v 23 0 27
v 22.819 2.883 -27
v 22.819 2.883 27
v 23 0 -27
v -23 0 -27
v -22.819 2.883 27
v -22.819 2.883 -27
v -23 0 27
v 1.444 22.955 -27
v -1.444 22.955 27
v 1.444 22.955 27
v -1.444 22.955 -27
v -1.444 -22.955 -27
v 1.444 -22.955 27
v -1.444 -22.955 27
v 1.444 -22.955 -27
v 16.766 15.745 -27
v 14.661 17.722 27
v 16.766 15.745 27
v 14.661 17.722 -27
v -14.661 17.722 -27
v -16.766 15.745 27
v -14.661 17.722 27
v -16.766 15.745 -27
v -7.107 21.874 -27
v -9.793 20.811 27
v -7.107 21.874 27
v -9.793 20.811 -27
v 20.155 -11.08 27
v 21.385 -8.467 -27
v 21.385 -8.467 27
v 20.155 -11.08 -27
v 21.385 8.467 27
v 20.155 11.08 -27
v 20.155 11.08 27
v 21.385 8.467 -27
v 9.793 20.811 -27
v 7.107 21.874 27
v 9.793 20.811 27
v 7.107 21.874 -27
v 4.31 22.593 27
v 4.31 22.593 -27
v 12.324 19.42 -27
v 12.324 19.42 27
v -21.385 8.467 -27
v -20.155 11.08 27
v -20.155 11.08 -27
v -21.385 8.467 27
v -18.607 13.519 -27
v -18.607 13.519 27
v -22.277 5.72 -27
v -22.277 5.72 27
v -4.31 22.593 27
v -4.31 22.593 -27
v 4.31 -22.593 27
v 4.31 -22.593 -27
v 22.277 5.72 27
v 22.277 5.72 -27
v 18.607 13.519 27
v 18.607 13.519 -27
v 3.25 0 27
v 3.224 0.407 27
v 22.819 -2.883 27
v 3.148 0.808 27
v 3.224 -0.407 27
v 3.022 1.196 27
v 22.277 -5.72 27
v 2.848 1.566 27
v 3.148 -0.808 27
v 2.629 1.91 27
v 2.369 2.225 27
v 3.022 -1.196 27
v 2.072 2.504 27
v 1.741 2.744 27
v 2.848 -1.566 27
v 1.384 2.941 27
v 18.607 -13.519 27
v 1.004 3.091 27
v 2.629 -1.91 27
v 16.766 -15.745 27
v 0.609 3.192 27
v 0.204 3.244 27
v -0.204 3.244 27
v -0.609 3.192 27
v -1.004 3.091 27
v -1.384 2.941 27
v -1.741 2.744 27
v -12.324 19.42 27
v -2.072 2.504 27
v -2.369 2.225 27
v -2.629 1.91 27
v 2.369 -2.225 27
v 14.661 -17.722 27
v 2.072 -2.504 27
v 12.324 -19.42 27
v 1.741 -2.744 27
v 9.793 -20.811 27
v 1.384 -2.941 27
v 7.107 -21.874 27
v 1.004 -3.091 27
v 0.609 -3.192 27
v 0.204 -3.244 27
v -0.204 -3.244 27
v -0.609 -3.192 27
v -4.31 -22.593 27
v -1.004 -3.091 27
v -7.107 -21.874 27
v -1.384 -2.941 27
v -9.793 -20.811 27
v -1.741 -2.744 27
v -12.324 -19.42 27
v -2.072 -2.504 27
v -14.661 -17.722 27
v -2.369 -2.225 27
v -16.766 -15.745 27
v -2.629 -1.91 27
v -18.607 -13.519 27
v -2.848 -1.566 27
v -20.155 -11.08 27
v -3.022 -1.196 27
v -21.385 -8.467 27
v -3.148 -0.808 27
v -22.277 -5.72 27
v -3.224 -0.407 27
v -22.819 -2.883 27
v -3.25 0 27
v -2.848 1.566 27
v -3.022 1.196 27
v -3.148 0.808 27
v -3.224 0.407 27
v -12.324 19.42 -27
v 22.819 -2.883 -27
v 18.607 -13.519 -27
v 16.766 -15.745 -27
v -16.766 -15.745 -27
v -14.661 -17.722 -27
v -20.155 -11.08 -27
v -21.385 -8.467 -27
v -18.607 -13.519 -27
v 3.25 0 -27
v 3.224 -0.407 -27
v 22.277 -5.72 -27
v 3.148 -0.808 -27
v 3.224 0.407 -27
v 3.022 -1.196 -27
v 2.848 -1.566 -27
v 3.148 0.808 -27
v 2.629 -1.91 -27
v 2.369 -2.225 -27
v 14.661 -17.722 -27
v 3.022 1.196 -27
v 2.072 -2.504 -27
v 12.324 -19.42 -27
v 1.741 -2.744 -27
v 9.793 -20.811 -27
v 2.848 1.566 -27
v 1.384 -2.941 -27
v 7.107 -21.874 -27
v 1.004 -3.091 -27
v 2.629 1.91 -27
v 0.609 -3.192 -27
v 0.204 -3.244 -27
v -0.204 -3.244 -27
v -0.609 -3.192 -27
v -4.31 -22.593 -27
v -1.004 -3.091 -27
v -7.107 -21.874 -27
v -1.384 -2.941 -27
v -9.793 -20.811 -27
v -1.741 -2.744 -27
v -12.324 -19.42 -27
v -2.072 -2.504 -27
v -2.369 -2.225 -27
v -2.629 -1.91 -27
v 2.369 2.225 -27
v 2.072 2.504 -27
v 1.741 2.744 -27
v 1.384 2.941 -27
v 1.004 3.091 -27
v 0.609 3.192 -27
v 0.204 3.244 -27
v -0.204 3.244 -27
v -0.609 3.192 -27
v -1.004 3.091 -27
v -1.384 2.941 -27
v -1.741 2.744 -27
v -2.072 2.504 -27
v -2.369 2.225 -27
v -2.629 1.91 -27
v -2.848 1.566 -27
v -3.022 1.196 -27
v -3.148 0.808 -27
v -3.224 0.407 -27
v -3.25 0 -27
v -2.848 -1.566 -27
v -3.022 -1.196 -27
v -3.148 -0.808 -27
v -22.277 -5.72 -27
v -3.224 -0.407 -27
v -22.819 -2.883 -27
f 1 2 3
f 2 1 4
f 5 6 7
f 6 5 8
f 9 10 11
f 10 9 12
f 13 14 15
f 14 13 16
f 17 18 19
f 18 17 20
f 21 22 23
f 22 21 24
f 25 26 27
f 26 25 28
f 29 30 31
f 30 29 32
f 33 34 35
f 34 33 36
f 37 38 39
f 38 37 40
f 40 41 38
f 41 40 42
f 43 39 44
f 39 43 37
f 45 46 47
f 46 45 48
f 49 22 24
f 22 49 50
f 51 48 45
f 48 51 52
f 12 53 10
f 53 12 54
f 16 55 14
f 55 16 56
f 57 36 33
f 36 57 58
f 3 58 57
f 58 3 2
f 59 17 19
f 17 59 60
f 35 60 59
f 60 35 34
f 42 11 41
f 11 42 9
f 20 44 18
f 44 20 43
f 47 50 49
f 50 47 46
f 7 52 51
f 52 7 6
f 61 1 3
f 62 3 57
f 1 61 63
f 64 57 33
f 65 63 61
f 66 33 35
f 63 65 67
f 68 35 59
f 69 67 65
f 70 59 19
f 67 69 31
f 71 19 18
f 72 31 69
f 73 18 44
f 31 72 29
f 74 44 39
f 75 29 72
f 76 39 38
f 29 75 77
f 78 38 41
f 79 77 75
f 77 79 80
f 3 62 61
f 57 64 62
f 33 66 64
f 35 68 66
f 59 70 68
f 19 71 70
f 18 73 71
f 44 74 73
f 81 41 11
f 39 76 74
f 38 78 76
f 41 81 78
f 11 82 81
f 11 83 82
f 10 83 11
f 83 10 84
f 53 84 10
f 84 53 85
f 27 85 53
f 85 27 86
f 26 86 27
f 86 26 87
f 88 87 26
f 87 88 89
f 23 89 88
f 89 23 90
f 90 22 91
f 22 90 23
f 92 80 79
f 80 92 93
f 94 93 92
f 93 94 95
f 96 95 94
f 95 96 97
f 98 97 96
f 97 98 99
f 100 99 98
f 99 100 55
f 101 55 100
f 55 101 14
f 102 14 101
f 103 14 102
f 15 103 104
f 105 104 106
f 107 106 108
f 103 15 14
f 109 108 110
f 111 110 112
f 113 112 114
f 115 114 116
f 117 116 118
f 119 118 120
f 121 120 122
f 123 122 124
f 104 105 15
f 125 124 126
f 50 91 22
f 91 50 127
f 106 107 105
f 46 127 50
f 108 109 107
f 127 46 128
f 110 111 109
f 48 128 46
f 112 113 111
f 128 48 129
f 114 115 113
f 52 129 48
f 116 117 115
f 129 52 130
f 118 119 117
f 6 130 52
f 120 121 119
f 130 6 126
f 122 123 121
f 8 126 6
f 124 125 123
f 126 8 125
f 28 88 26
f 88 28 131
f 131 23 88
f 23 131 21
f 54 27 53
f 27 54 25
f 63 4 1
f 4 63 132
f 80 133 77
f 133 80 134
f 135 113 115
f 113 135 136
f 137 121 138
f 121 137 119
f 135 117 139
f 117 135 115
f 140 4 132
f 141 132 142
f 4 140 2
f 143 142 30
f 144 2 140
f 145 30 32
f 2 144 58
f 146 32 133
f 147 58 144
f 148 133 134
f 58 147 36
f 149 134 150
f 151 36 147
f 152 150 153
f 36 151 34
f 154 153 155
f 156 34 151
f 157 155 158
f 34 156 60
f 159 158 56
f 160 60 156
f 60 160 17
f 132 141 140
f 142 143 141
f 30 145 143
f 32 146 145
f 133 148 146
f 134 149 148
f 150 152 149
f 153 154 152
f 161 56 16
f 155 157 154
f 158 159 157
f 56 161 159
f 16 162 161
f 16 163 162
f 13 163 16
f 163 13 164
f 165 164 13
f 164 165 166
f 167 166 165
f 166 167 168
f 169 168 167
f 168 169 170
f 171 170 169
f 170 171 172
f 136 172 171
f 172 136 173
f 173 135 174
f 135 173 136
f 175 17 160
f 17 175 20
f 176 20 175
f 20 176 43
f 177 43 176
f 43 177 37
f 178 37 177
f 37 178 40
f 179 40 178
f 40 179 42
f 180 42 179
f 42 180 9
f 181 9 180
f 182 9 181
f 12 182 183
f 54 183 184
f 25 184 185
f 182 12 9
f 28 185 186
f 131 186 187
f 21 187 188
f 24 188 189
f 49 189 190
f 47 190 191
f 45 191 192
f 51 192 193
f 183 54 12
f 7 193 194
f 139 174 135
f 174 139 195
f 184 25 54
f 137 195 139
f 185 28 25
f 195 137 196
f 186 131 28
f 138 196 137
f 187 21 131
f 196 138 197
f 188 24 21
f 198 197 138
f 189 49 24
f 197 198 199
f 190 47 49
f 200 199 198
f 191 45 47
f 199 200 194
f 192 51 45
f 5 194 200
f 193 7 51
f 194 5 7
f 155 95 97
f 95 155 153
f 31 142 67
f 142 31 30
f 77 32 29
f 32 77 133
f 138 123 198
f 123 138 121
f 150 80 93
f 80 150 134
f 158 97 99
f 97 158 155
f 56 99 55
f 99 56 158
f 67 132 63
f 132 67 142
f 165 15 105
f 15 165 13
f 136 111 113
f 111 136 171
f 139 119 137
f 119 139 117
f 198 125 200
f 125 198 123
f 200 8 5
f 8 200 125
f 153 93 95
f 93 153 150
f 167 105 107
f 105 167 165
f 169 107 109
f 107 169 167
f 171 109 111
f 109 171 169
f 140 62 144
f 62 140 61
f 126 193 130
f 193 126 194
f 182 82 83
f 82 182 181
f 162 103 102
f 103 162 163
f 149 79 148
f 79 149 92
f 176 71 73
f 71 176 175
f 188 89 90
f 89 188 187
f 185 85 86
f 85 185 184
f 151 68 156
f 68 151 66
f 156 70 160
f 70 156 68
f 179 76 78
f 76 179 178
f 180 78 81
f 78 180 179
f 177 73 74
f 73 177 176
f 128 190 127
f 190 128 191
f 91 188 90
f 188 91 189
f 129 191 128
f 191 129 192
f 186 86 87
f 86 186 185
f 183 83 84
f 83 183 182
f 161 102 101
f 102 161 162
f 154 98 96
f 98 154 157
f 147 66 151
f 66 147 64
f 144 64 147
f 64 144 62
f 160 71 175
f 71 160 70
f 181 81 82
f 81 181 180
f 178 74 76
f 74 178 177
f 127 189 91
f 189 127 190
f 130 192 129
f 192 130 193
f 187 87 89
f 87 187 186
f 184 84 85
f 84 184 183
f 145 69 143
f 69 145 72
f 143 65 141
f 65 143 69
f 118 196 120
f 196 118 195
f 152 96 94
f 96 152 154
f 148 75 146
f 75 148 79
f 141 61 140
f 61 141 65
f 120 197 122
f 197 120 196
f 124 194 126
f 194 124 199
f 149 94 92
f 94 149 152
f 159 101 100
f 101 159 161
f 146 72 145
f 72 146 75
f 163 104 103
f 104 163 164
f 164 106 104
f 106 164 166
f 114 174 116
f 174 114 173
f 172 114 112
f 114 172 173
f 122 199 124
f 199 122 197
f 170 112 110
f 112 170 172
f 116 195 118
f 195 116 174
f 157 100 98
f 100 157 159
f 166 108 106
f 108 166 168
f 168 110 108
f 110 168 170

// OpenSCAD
$fn = 50;


difference() {
	union() {
		translate(v = [0, 0, -27.0000000000]) {
			cylinder(h = 54, r = 23.0000000000);
		}
	}
	union() {
		translate(v = [0, 0, -100.0000000000]) {
			cylinder(h = 200, r = 3.2500000000);
		}
	}
}
